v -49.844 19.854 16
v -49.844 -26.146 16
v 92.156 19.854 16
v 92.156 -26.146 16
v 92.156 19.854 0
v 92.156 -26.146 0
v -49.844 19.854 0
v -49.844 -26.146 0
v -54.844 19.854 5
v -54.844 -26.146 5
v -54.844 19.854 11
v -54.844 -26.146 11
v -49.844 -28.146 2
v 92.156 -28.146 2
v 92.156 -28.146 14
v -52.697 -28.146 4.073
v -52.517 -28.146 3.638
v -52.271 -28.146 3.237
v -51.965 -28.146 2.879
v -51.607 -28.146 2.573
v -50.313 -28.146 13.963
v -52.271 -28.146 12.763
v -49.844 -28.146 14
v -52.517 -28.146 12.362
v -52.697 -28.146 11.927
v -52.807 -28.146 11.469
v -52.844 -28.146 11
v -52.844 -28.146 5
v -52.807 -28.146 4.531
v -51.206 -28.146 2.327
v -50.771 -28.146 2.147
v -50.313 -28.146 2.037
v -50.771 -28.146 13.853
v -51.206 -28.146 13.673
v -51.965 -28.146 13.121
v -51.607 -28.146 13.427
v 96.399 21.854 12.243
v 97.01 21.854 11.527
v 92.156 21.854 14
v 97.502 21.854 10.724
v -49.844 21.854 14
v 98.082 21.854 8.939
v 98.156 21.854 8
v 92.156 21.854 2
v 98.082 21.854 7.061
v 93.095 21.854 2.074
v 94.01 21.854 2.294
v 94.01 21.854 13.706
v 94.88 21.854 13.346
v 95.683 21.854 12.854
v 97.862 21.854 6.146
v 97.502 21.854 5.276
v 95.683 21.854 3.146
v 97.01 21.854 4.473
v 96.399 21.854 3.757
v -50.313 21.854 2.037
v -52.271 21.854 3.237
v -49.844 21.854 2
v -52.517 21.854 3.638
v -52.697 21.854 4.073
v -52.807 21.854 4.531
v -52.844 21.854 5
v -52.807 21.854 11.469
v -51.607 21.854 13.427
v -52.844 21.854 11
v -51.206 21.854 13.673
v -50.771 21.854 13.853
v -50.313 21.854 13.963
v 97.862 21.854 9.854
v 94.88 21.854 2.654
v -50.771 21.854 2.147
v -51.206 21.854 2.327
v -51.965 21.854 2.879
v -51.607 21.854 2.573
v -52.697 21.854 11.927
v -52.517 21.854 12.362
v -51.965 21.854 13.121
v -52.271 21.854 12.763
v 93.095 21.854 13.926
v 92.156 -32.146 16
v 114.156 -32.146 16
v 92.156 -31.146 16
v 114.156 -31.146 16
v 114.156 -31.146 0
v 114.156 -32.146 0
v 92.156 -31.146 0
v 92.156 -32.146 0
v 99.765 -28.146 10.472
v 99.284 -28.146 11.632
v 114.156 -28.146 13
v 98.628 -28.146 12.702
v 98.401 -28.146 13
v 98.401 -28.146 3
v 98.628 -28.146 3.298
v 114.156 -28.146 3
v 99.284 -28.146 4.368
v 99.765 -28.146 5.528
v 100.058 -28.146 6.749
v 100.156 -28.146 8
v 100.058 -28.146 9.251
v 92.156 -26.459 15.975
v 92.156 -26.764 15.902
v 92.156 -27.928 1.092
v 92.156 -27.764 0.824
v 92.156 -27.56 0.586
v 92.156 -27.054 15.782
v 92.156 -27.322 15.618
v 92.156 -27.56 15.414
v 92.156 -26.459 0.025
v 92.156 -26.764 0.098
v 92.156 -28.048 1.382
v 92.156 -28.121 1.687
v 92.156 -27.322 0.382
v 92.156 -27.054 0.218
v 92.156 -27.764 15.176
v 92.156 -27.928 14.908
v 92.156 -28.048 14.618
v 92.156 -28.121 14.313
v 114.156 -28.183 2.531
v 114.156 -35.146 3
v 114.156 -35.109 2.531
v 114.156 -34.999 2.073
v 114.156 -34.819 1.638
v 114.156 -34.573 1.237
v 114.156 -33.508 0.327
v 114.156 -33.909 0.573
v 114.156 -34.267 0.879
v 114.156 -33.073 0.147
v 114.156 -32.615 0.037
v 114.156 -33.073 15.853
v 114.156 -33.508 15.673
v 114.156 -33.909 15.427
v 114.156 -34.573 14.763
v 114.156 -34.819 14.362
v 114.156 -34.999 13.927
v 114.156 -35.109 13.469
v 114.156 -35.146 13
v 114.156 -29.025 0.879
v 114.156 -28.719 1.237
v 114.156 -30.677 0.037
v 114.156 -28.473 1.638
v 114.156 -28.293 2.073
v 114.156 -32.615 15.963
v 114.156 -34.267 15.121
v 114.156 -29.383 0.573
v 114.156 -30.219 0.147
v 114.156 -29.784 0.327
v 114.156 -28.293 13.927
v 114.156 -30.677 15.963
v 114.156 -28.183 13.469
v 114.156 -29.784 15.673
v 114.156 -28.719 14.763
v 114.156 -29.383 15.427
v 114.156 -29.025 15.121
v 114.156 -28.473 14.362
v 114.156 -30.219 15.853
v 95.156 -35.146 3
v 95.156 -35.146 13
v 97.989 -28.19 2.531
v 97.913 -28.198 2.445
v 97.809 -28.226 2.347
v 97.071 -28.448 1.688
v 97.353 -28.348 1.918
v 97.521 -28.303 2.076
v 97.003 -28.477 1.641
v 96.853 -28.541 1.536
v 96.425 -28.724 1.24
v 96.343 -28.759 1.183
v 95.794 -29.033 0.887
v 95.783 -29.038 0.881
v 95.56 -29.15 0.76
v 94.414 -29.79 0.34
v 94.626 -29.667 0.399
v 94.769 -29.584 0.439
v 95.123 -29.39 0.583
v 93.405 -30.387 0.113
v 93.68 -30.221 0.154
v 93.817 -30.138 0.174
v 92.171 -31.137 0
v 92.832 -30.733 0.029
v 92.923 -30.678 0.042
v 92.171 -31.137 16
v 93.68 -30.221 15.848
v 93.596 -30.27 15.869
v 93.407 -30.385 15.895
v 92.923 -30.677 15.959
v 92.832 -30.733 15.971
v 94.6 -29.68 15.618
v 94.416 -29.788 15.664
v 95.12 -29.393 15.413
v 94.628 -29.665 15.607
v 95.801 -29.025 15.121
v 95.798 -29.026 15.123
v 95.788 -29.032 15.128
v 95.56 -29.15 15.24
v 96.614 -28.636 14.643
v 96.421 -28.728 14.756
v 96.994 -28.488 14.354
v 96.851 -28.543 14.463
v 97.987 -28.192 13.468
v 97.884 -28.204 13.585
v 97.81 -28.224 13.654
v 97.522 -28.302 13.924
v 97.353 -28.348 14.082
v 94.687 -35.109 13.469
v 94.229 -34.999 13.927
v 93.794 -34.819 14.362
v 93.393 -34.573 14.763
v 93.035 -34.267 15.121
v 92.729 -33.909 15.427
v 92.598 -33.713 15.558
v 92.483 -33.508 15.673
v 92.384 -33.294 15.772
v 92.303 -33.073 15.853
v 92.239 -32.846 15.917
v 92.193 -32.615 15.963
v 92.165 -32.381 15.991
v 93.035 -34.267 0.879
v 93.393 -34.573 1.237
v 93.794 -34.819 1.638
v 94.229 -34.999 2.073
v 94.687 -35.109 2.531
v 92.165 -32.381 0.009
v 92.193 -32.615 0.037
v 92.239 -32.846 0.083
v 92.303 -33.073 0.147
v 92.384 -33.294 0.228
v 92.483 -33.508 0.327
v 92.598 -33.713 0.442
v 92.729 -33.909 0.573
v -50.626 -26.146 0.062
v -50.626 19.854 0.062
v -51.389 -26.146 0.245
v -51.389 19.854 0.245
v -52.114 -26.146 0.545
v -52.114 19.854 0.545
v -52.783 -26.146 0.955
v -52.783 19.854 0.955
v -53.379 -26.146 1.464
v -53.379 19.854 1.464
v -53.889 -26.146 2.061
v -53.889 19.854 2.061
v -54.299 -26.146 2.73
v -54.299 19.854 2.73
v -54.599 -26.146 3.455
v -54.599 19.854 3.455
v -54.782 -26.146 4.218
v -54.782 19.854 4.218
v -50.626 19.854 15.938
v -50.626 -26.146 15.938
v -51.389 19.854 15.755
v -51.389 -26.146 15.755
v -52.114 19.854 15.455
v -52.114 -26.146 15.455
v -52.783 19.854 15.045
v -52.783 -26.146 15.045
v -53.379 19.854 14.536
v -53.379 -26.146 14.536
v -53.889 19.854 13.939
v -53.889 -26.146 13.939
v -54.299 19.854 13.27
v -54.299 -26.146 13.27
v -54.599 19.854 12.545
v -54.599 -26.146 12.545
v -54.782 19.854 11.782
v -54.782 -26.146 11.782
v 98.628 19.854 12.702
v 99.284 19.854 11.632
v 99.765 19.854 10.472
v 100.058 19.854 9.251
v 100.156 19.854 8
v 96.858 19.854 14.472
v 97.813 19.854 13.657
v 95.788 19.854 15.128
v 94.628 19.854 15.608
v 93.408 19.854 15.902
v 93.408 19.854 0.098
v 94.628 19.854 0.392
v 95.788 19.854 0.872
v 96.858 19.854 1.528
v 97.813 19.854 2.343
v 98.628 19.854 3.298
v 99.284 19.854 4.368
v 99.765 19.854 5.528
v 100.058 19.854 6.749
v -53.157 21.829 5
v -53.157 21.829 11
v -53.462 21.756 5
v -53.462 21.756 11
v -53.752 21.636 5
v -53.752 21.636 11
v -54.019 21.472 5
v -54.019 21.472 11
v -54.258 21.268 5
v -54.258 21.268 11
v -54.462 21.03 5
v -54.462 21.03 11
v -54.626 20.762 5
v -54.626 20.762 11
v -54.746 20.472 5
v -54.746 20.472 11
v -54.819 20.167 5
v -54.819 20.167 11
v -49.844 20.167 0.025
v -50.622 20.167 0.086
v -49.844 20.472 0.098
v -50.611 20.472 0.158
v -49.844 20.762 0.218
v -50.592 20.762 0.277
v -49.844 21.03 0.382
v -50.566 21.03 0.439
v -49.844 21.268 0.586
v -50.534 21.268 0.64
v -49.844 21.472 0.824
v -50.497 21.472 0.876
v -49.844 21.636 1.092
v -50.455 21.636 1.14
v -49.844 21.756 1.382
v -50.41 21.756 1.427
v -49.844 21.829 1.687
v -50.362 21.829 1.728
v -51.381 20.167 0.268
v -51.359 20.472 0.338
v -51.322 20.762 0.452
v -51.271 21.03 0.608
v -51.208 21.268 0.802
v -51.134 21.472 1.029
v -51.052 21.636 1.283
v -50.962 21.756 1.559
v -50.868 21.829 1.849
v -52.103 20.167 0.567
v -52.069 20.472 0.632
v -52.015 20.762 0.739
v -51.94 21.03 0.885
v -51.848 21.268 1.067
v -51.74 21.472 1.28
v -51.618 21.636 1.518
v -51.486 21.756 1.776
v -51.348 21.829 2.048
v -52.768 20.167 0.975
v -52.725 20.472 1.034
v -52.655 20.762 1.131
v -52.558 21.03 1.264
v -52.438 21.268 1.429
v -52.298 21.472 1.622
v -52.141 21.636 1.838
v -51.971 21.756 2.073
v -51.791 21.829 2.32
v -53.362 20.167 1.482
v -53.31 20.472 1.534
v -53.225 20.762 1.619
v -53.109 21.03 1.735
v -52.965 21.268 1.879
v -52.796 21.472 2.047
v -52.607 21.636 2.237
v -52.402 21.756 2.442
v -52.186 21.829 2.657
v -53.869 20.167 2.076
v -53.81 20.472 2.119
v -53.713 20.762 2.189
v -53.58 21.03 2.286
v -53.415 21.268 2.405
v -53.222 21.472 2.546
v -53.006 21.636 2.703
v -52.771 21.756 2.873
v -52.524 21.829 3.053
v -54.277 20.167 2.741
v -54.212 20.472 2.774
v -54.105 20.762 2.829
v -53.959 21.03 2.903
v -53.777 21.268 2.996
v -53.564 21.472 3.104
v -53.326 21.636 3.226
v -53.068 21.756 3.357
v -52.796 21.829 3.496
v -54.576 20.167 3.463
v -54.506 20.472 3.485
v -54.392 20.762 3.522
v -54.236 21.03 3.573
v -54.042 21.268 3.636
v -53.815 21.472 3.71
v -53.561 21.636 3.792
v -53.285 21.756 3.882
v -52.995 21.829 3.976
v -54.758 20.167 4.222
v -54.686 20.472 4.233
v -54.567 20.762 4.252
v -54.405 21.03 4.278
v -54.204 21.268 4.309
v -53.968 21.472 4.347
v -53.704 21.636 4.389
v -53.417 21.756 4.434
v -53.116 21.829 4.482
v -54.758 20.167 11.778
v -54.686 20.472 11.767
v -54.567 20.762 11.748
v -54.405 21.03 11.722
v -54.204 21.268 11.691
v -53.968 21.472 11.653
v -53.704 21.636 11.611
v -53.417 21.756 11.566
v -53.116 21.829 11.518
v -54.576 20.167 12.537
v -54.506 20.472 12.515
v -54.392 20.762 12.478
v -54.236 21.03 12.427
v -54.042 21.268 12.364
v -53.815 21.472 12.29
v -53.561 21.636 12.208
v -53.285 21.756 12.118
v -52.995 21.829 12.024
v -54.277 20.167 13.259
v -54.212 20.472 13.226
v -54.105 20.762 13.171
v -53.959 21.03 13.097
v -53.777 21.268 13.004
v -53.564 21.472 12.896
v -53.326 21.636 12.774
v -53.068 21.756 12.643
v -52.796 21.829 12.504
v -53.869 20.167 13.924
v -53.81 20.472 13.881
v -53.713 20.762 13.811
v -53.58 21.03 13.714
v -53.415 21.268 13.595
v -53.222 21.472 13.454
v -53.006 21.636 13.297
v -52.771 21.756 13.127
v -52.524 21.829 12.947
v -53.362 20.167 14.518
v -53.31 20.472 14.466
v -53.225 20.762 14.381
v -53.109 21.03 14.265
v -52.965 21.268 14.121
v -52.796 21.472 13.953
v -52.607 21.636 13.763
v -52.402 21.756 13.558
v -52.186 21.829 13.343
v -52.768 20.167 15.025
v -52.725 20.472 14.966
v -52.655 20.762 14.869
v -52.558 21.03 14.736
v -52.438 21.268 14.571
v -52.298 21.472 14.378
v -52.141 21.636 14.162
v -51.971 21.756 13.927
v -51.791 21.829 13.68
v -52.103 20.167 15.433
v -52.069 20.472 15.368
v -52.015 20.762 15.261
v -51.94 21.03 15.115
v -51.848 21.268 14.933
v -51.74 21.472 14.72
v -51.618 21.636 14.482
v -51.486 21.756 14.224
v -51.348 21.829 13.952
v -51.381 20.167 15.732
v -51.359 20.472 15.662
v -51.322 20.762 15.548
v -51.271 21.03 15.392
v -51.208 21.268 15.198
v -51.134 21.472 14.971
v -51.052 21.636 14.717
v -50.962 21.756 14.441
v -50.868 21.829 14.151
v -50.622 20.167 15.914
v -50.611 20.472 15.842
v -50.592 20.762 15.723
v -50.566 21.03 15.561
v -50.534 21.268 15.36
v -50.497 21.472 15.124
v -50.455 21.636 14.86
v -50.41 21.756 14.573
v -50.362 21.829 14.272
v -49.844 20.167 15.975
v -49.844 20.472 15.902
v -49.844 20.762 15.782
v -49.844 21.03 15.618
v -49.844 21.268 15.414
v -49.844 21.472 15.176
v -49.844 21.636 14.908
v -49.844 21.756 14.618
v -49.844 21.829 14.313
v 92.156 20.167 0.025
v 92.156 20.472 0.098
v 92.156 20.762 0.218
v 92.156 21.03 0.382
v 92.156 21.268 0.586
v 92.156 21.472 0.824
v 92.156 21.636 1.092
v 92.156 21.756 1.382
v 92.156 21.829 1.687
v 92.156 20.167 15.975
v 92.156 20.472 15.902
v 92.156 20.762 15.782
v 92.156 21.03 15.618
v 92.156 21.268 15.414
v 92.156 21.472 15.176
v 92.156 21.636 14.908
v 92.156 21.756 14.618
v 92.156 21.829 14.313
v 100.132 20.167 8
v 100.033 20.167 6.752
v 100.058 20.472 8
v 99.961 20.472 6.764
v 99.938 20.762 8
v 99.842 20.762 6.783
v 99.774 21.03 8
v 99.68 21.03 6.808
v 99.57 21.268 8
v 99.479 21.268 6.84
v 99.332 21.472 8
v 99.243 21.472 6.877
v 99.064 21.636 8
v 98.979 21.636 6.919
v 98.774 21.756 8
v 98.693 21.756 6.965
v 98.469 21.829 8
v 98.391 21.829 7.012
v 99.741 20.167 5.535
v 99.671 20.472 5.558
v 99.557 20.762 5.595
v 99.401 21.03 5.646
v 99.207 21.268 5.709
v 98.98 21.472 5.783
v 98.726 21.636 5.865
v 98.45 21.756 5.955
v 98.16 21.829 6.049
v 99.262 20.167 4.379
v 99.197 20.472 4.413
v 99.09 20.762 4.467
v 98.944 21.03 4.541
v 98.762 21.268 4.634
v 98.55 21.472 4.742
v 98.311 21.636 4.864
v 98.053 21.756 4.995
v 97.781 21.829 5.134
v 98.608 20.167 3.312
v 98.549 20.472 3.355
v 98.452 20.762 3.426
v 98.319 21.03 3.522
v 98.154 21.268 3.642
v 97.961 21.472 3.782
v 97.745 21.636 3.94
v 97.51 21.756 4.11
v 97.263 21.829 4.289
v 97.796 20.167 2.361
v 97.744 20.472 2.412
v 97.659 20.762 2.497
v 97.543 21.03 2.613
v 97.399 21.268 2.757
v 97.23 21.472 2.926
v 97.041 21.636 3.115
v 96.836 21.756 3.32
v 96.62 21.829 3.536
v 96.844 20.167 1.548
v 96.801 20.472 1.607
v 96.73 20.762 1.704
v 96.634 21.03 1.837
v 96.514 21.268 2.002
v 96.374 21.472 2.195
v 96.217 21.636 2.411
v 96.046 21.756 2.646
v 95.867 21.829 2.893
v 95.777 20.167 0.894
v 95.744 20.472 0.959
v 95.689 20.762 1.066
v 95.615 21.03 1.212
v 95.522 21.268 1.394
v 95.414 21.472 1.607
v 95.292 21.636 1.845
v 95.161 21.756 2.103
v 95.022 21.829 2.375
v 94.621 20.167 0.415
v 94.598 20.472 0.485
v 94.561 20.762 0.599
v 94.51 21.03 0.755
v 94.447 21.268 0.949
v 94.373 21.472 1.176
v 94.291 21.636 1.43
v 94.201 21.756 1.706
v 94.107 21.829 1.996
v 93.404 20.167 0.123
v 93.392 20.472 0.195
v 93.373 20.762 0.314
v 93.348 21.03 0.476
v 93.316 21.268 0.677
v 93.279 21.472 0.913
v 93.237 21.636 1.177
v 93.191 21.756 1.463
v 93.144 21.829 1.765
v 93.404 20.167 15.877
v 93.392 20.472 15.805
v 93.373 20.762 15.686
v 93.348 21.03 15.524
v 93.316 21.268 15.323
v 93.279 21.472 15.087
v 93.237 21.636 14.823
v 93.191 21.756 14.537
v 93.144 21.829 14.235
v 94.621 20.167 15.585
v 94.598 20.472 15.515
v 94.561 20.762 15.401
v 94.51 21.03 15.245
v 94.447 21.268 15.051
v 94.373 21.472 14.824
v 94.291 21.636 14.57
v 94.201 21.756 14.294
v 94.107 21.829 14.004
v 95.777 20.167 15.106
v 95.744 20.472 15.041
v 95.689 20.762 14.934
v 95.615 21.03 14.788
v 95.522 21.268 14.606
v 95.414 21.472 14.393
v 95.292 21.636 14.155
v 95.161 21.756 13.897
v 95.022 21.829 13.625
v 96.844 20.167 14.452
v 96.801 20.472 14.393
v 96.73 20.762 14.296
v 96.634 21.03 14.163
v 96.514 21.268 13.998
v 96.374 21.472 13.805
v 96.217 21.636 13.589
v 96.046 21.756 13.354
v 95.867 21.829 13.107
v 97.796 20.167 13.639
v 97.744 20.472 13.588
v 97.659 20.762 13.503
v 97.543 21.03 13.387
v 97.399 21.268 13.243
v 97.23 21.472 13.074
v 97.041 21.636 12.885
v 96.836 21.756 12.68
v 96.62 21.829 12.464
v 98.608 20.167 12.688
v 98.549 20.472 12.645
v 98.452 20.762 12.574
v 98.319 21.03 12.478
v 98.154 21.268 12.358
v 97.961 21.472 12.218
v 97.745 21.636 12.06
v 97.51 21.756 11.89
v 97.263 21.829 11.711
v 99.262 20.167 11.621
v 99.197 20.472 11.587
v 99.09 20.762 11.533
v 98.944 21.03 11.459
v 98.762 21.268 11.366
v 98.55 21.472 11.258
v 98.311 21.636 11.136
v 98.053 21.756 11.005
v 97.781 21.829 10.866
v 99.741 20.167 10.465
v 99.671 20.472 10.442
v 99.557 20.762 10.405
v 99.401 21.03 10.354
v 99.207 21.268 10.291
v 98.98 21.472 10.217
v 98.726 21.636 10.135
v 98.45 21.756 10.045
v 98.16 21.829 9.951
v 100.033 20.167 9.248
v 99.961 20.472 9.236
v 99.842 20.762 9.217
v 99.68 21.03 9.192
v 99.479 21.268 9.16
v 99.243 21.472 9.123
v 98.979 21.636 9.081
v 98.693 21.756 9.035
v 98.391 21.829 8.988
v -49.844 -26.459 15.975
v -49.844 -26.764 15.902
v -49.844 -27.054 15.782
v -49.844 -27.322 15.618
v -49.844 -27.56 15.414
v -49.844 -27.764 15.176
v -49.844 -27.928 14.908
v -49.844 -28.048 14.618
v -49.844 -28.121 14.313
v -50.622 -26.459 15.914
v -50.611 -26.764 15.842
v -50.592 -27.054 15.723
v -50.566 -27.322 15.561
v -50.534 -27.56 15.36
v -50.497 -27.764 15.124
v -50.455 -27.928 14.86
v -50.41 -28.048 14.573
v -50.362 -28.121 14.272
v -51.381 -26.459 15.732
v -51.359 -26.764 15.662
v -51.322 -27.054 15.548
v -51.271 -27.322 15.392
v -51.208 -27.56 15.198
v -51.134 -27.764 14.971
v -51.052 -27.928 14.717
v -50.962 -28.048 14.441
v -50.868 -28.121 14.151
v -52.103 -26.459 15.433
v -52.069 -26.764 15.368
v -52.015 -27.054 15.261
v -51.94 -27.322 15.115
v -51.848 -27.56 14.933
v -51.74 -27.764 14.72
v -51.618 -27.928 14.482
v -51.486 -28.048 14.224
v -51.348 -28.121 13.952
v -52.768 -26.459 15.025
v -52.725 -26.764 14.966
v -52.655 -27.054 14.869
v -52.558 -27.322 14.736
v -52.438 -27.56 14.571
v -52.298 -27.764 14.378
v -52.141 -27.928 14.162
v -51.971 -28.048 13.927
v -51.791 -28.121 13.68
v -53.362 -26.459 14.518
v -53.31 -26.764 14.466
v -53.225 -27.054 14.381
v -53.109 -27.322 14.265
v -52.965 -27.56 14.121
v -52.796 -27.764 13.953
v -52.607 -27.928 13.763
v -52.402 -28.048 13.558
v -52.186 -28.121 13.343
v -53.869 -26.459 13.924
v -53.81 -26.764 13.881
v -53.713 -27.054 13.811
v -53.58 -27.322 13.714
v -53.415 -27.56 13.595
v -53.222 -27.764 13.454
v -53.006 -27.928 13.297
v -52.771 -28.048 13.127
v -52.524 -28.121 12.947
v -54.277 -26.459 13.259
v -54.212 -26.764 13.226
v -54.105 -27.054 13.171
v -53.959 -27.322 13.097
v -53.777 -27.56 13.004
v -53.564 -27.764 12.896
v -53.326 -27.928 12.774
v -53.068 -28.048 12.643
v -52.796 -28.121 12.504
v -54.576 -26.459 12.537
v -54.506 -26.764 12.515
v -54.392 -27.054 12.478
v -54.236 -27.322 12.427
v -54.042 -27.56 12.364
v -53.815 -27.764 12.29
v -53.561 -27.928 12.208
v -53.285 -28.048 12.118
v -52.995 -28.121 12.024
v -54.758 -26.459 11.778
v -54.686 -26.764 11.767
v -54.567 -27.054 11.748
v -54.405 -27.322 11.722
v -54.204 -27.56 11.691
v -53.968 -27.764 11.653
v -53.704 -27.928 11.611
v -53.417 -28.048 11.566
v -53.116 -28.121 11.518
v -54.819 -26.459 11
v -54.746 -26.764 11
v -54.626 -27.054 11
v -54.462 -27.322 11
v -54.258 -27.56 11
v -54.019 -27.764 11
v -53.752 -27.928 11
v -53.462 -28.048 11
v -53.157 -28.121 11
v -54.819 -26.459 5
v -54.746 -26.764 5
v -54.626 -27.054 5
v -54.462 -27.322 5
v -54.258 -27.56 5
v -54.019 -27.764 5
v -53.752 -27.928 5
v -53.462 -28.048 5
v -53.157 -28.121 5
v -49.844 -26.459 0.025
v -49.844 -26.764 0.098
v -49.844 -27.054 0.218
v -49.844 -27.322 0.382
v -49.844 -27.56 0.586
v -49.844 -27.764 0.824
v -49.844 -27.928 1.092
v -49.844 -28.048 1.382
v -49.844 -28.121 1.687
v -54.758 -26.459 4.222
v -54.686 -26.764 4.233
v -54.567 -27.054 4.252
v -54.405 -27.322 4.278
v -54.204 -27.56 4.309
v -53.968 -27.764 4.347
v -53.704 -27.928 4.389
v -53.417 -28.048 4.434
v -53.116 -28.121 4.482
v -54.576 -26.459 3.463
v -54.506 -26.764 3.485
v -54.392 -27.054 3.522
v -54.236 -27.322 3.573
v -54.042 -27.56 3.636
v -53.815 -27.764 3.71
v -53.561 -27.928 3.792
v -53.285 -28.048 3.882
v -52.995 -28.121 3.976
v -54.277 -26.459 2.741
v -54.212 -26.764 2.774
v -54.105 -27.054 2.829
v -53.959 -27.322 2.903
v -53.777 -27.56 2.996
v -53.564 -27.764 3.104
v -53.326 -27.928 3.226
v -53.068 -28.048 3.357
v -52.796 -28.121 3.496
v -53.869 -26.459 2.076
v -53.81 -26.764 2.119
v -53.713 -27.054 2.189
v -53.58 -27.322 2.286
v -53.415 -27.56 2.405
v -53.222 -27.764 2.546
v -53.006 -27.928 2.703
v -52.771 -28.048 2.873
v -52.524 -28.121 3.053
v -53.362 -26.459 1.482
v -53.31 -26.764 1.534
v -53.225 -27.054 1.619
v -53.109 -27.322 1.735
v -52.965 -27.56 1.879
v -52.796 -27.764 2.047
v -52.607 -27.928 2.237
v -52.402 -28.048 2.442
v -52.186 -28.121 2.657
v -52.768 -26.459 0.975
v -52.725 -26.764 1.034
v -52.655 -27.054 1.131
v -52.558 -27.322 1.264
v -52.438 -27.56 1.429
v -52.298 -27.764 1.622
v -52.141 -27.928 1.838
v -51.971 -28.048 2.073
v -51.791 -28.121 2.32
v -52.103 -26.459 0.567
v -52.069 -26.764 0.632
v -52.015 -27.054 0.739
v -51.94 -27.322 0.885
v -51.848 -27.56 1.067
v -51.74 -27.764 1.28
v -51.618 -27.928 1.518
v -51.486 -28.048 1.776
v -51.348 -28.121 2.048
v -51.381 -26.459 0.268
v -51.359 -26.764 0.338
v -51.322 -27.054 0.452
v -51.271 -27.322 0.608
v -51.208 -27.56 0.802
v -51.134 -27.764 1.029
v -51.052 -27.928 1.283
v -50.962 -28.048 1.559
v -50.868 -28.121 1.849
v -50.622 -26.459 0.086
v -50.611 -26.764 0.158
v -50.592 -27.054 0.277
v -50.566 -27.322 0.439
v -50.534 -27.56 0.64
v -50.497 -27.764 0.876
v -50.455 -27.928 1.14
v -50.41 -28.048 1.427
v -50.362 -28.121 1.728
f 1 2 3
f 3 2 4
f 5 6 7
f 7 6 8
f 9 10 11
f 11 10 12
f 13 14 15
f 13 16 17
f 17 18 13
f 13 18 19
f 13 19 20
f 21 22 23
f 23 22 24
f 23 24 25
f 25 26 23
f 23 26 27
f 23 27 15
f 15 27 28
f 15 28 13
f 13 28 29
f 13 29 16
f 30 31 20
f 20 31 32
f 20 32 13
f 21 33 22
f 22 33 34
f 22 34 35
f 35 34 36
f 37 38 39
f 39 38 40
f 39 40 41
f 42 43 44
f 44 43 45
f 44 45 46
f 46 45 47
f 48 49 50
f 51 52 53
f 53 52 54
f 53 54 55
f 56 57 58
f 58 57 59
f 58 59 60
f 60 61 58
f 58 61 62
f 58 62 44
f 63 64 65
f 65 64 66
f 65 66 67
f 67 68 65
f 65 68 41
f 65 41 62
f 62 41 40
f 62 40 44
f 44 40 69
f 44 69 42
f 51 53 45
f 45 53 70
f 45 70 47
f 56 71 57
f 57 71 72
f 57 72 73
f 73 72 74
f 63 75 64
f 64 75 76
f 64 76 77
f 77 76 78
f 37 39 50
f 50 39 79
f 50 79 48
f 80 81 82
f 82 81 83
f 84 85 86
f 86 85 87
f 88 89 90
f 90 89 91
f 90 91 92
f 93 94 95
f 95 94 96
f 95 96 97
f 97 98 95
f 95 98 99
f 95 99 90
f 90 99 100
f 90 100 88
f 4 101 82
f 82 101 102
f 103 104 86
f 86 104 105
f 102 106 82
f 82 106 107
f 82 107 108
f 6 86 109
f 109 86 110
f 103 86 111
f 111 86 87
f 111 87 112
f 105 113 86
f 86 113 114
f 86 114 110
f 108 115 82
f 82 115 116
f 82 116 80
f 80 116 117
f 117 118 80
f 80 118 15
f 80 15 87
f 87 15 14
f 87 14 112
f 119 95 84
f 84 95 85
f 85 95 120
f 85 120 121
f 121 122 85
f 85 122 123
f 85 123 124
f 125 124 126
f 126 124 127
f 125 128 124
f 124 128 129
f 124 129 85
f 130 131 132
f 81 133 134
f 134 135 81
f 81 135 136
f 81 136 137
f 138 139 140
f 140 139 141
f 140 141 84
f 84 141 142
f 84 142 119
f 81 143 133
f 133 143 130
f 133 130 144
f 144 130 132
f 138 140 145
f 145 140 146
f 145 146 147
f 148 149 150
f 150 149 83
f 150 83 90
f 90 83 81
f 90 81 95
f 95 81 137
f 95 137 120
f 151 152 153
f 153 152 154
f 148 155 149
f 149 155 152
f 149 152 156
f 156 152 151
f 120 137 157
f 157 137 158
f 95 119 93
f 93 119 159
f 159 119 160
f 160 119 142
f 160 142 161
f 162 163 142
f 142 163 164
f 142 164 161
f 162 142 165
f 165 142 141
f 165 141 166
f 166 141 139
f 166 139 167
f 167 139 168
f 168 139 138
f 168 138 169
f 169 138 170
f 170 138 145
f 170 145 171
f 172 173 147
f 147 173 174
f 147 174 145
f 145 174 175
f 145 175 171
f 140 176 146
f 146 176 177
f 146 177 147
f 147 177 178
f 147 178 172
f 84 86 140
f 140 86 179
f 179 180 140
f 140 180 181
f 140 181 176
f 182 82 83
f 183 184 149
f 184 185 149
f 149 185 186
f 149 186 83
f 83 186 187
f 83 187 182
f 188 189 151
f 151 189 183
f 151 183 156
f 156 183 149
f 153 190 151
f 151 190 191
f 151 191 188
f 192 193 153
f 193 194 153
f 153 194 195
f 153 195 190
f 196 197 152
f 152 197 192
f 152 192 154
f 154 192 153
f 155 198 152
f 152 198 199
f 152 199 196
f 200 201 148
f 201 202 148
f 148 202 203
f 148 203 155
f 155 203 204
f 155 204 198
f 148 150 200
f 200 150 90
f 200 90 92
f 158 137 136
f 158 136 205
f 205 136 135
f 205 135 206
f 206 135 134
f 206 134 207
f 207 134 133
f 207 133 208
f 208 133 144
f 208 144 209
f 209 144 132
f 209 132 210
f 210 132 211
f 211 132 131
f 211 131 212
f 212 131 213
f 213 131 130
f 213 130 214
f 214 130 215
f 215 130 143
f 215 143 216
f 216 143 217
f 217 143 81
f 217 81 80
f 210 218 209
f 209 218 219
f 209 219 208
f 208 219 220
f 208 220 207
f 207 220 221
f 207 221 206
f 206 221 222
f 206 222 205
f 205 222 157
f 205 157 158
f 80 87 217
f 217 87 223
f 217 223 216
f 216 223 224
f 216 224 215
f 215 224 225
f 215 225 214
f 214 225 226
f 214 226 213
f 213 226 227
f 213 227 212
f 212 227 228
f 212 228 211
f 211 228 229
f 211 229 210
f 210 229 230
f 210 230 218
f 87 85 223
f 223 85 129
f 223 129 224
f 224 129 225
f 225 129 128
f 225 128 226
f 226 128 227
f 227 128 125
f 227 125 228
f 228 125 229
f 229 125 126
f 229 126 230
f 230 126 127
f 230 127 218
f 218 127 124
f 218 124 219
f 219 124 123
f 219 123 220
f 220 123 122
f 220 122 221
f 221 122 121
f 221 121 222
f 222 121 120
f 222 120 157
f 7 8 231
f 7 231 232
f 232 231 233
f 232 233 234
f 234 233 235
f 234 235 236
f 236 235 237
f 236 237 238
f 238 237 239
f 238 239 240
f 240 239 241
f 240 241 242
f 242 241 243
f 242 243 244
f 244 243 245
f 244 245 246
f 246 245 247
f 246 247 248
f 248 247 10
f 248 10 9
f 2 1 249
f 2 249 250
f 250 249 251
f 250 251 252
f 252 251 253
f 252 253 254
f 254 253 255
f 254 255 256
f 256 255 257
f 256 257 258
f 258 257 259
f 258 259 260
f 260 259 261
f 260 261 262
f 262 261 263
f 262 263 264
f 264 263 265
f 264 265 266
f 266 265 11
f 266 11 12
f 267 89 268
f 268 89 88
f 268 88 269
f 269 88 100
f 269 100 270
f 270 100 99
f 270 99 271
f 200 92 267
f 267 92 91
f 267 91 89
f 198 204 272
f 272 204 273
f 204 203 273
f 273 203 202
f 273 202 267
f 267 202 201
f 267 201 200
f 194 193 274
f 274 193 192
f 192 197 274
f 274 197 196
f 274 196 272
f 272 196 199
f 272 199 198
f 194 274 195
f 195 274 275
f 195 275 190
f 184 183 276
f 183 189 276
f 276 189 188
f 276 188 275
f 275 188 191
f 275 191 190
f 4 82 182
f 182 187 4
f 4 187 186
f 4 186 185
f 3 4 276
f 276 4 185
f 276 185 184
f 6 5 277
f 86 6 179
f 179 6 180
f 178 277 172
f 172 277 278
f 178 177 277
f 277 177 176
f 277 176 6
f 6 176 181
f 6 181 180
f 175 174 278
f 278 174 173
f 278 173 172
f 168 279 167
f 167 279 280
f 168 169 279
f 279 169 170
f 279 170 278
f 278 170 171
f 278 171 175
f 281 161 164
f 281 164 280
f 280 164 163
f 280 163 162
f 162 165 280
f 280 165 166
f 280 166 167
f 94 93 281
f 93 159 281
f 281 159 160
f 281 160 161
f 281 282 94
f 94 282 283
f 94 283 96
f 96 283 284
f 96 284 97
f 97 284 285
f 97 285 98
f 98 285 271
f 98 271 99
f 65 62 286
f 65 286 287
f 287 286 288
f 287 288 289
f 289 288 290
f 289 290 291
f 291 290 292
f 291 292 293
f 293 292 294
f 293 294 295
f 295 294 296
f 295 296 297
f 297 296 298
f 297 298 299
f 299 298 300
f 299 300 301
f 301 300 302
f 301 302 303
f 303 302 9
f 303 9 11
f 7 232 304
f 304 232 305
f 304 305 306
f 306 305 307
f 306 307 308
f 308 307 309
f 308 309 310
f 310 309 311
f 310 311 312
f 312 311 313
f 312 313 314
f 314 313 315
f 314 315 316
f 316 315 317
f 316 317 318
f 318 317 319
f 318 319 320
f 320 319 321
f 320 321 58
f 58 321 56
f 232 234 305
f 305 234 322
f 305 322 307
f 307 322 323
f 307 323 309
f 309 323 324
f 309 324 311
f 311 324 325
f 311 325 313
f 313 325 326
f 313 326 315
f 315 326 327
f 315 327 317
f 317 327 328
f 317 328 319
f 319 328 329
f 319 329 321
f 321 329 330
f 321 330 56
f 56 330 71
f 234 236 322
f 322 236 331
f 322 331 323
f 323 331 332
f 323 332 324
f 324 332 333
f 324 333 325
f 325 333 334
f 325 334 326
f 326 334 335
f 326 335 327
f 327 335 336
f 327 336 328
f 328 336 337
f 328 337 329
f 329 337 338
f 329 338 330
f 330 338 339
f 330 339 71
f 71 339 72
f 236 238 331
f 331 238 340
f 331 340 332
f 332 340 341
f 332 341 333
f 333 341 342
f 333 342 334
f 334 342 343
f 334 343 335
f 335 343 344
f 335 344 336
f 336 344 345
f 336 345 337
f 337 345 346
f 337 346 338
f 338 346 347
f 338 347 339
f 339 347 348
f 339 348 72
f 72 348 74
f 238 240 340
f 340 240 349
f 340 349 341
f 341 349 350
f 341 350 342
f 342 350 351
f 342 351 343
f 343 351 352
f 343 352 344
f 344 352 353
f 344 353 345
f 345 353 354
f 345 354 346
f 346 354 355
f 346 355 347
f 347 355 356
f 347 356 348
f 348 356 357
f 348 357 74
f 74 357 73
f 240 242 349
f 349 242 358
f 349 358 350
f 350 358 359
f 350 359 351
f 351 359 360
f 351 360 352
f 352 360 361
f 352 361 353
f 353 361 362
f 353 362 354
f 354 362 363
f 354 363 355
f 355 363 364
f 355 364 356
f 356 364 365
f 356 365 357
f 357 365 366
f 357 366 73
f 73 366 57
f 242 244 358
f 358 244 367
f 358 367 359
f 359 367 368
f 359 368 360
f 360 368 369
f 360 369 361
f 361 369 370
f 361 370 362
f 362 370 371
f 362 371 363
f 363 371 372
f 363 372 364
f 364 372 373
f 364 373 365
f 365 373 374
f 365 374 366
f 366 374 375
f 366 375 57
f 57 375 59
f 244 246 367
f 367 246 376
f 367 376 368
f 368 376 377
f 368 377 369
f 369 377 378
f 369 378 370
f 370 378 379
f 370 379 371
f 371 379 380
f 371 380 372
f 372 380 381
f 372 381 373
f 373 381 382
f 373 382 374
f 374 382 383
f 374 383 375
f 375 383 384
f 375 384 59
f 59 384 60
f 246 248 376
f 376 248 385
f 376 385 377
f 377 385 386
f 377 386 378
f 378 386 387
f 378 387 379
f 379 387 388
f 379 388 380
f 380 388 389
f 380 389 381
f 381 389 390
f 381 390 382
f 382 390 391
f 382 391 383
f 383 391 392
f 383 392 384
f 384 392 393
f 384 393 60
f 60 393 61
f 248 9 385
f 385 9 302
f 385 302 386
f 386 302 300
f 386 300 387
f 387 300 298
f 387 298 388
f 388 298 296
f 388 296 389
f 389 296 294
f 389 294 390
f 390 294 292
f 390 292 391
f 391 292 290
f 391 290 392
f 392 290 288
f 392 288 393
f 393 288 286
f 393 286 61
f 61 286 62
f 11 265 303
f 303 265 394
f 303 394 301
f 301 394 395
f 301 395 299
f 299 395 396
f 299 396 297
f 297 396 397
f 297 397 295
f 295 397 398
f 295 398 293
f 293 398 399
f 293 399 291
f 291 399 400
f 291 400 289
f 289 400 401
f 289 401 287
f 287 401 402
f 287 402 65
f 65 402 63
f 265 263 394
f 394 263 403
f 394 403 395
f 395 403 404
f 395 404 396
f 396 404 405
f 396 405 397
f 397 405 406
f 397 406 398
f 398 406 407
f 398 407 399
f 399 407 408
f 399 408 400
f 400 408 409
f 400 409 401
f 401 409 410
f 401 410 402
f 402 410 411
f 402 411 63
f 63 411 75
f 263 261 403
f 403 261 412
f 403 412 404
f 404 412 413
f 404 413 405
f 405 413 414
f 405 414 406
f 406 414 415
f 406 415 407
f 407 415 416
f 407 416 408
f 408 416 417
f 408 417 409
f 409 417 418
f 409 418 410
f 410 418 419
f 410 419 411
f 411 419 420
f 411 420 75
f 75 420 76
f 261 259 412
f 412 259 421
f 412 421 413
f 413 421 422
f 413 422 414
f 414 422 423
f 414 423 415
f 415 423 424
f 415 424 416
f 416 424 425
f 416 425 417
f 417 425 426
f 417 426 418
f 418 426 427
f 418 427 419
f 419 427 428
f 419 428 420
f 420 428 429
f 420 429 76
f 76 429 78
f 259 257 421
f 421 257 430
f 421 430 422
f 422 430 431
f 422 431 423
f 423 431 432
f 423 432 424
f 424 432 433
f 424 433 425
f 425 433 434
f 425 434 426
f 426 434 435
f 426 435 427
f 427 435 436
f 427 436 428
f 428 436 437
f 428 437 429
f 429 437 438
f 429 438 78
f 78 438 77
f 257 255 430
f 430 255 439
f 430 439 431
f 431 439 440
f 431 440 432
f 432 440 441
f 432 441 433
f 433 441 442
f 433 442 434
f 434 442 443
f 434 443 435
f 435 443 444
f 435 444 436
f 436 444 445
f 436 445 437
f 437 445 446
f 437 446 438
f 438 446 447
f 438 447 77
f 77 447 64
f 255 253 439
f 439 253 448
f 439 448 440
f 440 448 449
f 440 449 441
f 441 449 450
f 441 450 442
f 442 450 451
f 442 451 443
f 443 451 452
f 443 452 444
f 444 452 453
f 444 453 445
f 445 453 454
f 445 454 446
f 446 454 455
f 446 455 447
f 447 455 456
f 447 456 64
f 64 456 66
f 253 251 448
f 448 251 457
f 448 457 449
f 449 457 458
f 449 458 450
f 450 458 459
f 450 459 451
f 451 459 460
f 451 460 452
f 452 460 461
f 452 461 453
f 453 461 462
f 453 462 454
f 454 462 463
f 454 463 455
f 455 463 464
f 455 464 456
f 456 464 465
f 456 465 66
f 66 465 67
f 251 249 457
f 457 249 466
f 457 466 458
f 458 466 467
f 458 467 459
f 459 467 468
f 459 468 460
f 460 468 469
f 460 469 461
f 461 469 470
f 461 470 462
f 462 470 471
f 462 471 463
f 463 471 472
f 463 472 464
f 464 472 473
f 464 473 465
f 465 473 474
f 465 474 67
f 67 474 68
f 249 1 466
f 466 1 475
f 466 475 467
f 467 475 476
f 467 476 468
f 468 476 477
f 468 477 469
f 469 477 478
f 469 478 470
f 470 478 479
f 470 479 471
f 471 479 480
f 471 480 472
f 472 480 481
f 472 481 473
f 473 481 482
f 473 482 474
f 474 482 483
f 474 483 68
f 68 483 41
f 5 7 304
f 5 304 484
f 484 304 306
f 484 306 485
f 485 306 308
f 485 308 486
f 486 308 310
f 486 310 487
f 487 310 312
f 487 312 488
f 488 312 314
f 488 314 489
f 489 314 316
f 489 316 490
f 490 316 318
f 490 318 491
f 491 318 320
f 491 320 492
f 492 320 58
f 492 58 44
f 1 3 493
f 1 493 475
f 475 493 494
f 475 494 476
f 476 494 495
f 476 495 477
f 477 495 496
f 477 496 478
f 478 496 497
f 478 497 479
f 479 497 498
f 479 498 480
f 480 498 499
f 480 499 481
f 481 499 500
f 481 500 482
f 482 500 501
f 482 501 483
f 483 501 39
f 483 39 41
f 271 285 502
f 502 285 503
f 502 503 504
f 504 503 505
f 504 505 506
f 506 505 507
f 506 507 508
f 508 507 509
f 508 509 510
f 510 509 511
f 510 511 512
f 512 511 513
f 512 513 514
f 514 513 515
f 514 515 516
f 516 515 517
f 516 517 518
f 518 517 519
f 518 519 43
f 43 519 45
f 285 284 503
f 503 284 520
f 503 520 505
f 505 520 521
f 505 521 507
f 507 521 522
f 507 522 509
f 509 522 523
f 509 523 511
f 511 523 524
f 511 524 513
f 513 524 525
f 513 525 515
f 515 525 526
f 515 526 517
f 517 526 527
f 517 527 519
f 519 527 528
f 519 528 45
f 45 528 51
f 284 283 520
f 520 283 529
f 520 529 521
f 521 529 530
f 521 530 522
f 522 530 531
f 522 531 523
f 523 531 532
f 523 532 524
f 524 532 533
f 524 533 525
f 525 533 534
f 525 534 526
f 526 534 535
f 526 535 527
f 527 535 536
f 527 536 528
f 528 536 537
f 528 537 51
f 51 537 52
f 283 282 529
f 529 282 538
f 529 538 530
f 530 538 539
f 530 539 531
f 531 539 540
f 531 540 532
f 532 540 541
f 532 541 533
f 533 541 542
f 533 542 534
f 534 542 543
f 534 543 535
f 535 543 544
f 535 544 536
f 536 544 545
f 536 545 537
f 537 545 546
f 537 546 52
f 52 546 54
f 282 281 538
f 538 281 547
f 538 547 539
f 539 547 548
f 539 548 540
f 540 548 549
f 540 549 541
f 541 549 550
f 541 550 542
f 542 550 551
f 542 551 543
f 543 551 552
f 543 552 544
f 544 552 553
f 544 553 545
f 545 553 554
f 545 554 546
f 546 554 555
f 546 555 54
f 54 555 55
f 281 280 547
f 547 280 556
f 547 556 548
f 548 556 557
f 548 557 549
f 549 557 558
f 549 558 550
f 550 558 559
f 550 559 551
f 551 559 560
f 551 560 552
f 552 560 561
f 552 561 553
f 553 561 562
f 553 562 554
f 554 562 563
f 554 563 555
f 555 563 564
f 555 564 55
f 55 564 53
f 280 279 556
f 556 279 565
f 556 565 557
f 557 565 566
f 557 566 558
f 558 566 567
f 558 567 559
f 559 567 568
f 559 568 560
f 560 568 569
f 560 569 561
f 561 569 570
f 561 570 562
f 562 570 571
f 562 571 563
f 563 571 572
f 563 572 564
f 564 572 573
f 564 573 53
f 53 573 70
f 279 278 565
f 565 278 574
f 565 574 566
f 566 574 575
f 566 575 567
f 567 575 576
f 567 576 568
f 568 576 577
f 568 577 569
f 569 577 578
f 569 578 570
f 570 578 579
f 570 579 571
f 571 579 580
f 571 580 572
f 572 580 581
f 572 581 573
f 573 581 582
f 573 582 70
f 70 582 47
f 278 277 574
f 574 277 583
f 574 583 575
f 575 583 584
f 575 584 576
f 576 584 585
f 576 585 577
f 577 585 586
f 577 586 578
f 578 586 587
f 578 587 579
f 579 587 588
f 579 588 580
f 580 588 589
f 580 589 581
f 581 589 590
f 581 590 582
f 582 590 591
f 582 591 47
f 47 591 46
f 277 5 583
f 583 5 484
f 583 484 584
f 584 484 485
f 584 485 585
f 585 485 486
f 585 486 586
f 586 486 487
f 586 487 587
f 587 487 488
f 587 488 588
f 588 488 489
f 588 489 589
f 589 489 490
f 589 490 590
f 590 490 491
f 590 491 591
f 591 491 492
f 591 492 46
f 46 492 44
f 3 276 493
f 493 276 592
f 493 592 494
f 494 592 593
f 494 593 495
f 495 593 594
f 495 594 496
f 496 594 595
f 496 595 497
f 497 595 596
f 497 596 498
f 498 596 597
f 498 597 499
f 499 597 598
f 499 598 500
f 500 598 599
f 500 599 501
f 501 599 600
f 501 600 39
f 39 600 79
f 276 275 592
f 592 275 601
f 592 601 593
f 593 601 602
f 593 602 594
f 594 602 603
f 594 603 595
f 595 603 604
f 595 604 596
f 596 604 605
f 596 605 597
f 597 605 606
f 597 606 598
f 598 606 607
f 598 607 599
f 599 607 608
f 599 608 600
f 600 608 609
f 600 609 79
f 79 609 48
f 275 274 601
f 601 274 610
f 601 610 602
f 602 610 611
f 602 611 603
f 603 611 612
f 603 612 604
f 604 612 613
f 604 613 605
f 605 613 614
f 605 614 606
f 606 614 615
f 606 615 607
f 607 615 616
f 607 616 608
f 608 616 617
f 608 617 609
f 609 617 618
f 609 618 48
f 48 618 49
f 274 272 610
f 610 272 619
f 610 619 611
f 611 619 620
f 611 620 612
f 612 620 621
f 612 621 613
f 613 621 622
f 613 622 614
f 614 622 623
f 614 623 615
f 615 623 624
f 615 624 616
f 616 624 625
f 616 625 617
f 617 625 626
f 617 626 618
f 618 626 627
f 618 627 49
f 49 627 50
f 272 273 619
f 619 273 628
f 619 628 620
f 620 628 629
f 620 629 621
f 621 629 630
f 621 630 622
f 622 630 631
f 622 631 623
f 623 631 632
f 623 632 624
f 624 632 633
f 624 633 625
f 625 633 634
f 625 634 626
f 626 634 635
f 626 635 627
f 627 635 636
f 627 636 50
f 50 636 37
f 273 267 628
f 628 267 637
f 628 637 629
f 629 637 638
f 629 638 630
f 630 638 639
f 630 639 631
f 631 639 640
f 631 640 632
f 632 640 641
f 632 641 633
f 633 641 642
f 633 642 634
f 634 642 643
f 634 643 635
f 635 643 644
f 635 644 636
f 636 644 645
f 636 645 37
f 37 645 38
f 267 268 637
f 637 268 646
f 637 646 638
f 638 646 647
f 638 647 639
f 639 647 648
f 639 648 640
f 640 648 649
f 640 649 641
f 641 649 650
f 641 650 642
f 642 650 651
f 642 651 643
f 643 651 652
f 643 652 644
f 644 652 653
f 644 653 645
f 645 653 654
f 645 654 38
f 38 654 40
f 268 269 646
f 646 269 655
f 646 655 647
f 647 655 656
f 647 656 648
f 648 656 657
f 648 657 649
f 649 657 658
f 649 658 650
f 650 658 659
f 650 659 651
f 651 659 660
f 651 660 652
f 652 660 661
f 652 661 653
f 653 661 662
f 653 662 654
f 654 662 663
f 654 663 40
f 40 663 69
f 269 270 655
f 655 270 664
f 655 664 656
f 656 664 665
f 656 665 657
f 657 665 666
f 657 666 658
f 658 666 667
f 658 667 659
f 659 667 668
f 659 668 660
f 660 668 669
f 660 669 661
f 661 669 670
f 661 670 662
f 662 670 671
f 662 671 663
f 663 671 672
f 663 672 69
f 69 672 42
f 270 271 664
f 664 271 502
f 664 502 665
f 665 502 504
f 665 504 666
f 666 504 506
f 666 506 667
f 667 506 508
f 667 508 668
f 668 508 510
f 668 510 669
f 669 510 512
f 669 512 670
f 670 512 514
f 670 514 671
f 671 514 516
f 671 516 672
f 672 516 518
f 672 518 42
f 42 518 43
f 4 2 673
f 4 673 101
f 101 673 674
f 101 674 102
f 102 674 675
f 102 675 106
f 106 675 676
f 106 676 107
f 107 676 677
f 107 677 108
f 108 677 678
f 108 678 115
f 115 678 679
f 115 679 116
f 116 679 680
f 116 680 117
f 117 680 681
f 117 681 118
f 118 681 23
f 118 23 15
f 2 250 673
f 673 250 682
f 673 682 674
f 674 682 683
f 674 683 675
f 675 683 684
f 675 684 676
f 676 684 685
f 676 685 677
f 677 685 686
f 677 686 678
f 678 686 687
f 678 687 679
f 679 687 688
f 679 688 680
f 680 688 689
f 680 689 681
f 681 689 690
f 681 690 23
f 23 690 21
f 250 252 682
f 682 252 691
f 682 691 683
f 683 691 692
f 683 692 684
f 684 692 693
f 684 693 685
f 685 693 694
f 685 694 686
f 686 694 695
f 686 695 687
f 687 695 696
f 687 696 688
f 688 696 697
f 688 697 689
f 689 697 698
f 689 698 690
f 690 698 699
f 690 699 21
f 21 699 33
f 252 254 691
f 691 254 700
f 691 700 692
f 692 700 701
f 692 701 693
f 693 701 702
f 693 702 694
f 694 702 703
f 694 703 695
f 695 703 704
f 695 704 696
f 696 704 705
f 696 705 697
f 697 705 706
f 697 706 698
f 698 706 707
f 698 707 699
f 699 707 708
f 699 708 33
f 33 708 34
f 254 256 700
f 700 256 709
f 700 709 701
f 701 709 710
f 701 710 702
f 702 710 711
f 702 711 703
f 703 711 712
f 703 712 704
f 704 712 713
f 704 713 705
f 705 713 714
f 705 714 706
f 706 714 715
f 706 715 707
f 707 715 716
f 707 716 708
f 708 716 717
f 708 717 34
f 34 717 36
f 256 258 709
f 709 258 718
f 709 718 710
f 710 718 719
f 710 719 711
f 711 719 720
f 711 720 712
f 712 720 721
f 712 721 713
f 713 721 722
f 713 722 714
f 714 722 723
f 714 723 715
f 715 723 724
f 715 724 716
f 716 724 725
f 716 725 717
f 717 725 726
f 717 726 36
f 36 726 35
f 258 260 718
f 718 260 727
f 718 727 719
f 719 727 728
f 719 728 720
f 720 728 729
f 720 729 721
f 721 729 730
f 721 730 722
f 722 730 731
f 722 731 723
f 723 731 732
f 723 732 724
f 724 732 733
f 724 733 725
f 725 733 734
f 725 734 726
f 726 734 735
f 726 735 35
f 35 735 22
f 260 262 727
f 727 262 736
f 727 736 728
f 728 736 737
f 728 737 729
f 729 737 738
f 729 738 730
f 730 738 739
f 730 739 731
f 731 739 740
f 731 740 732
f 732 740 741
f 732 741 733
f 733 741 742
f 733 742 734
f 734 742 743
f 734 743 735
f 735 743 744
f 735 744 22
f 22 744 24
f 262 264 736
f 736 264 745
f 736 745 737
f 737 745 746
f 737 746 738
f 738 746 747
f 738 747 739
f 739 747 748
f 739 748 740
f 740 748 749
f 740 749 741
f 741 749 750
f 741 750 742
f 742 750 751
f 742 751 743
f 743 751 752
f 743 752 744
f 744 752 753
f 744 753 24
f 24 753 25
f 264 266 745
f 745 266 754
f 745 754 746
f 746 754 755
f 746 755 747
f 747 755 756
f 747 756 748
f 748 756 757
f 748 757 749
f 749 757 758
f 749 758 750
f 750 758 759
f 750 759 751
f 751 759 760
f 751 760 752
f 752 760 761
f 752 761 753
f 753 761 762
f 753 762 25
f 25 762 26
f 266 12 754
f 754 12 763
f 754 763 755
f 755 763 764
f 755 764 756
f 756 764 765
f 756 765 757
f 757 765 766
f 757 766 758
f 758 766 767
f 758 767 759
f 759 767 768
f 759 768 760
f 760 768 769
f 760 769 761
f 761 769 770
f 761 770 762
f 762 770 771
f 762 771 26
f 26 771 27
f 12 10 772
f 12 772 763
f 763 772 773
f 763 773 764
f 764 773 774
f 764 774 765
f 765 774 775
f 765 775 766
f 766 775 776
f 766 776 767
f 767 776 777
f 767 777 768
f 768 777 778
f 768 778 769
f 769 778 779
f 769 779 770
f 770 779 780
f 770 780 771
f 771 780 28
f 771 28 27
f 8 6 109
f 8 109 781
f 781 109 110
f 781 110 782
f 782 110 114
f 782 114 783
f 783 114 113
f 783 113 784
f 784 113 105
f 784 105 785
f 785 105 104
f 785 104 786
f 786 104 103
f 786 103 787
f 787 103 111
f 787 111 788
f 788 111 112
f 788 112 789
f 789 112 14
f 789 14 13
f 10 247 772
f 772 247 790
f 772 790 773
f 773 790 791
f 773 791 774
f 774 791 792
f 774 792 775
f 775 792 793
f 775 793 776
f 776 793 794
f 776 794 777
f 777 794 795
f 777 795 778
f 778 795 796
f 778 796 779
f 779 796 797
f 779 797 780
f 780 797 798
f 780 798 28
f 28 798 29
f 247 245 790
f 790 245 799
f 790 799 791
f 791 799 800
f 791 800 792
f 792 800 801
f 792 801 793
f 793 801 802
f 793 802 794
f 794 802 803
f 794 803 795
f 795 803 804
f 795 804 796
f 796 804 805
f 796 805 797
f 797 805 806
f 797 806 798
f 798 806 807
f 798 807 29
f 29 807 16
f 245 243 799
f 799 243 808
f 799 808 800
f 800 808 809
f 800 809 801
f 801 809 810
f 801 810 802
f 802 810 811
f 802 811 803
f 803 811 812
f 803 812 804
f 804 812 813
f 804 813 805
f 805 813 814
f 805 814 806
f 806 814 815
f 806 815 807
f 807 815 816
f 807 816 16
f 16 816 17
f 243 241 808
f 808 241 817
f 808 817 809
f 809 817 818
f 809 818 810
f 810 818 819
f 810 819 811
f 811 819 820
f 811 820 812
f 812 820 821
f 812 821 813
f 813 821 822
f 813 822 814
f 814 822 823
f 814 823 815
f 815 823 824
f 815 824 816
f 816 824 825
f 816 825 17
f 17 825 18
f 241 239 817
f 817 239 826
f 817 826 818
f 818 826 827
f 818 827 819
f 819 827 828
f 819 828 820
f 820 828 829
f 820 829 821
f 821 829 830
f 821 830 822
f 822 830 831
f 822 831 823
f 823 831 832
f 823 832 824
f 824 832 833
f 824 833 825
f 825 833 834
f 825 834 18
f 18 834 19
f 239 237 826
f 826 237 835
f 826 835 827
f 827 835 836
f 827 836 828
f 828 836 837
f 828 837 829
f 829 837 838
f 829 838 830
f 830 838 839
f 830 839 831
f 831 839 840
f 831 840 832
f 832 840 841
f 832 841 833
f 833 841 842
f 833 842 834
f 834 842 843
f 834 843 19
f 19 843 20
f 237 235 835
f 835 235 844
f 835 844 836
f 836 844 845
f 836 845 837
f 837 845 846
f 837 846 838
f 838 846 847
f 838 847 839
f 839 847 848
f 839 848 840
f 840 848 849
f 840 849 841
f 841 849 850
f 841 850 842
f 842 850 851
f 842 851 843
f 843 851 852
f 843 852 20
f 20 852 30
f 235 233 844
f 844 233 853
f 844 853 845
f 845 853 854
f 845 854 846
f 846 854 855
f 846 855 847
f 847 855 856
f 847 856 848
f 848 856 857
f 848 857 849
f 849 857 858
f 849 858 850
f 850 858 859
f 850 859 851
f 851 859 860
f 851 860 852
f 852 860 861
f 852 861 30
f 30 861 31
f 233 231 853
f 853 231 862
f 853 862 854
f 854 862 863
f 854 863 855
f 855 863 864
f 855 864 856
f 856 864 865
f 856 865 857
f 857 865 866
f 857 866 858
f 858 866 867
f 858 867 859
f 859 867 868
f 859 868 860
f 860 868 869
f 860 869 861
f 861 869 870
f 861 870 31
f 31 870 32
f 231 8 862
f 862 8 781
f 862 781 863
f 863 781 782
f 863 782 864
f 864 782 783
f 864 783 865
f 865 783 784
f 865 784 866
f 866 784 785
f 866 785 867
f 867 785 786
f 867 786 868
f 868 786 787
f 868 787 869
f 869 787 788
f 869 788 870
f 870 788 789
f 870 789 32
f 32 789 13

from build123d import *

# Parameters (mm, degrees)
CROQUIS1_W              = 155
CROQUIS1_H              = 50
SALIENTE_EXTRUIR1_DEPTH = 16
CROQUIS4_W              = 22
CROQUIS4_H              = 7
SALIENTE_EXTRUIR2_DEPTH = 16
REDONDEO1_R             = 3
REDONDEO2_R             = 5
REDONDEO3_START         = 92.156121327
REDONDEO3_DEPTH         = 8.0000001
REDONDEO4_R             = 2


with BuildPart() as part:
    # Croquis1 → Saliente-Extruir1 (new body)
    with BuildSketch(Plane.XY):
        with Locations((22.656121427, -3.145967168)):
            Rectangle(CROQUIS1_W, CROQUIS1_H)
    extrude(amount=SALIENTE_EXTRUIR1_DEPTH)

    # Croquis4 → Saliente-Extruir2 (add)
    with BuildSketch(Plane.XY.offset(16)):
        with Locations((103.156121427, -31.645967168)):
            Rectangle(CROQUIS4_W, CROQUIS4_H)
    extrude(amount=-SALIENTE_EXTRUIR2_DEPTH)

    # Redondeo1
    redondeo1_edges = [part.edges().sort_by_distance(p)[0] for p in [
        (107.156121427, -28.145967168, 16),
        (107.156121427, -28.145967168, 0),
        (103.156121427, -35.145967168, 16),
        (103.156121427, -35.145967168, 0),
        (92.156121427, -35.145967168, 8),
    ]]
    fillet(redondeo1_edges, radius=REDONDEO1_R)

    # Redondeo2
    redondeo2_edges = [part.edges().sort_by_distance(p)[0] for p in [
        (-54.843878573, -3.145967168, 0),
        (-54.843878573, -3.145967168, 16),
    ]]
    fillet(redondeo2_edges, radius=REDONDEO2_R)

    # Redondeo3: read off the stored shape, not the designer's step
    # Redondeo3 outline → Redondeo3 (cut)
    with BuildSketch(Plane.YZ.offset(REDONDEO3_START)):
        with BuildLine():
            Line((-28.145967168, 13), (-28.145967168, 3))
            ThreePointArc((-28.145967168, 3), (-29.024646824, 0.878679656), (-31.145967168, 0))
            Line((-31.145967168, 0), (21.854032832, 0))
            Line((21.854032832, 0), (21.854032832, 16))
            Line((21.854032832, 16), (-31.145967168, 16))
            ThreePointArc((-31.145967168, 16), (-29.024646824, 15.121320344), (-28.145967168, 13))
        make_face()
    extrude(amount=REDONDEO3_DEPTH, mode=Mode.SUBTRACT)

    # Redondeo3 2: loft between two sections, ruled curve by curve
    redondeo3_2_from = [
        Edge.make_three_point_arc((100.156121427, 21.854032832, 8), (97.812975677, 21.854032832, 13.656854249), (92.156121427, 21.854032832, 16)),
        Edge.make_three_point_arc((100.156121427, 21.854032832, 8), (97.812975677, 21.854032832, 2.343145751), (92.156121427, 21.854032832, 0)),
        Edge.make_line((92.156121427, 21.854032832, 0), (92.156121427, 21.854032832, 16)),
    ]
    redondeo3_2_to = [
        Edge.make_three_point_arc((100.156121427, -31.145967168, 8), (97.812975677, -31.145967168, 13.656854249), (92.156121427, -31.145967168, 16)),
        Edge.make_three_point_arc((100.156121427, -31.145967168, 8), (97.812975677, -31.145967168, 2.343145751), (92.156121427, -31.145967168, 0)),
        Edge.make_line((92.156121427, -31.145967168, 0), (92.156121427, -31.145967168, 16)),
    ]
    redondeo3_2 = Solid(Shell([*[Face.make_surface_from_curves(redondeo3_2_from[k], redondeo3_2_to[k]) for k in range(3)], Face(Wire(redondeo3_2_from)), Face(Wire(redondeo3_2_to))]))
    add(redondeo3_2)

    # Redondeo4
    redondeo4_edges = [part.edges().sort_by_distance(p)[0] for p in [
        (97.812975677, 21.854032832, 13.656854249),
        (97.812975677, 21.854032832, 2.343145751),
        (-53.379412479, 21.854032832, 1.464466094),
        (-54.843878573, 21.854032832, 8),
        (-53.379412479, 21.854032832, 14.535533906),
        (-53.379412479, -28.145967168, 1.464466094),
        (-54.843878573, -28.145967168, 8),
        (-53.379412479, -28.145967168, 14.535533906),
        (21.156121377, 21.854032832, 0),
        (21.156121377, 21.854032832, 16),
        (21.156121427, -28.145967168, 0),
        (21.156121427, -28.145967168, 16),
    ]]
    fillet(redondeo4_edges, radius=REDONDEO4_R)


solid = part.part
